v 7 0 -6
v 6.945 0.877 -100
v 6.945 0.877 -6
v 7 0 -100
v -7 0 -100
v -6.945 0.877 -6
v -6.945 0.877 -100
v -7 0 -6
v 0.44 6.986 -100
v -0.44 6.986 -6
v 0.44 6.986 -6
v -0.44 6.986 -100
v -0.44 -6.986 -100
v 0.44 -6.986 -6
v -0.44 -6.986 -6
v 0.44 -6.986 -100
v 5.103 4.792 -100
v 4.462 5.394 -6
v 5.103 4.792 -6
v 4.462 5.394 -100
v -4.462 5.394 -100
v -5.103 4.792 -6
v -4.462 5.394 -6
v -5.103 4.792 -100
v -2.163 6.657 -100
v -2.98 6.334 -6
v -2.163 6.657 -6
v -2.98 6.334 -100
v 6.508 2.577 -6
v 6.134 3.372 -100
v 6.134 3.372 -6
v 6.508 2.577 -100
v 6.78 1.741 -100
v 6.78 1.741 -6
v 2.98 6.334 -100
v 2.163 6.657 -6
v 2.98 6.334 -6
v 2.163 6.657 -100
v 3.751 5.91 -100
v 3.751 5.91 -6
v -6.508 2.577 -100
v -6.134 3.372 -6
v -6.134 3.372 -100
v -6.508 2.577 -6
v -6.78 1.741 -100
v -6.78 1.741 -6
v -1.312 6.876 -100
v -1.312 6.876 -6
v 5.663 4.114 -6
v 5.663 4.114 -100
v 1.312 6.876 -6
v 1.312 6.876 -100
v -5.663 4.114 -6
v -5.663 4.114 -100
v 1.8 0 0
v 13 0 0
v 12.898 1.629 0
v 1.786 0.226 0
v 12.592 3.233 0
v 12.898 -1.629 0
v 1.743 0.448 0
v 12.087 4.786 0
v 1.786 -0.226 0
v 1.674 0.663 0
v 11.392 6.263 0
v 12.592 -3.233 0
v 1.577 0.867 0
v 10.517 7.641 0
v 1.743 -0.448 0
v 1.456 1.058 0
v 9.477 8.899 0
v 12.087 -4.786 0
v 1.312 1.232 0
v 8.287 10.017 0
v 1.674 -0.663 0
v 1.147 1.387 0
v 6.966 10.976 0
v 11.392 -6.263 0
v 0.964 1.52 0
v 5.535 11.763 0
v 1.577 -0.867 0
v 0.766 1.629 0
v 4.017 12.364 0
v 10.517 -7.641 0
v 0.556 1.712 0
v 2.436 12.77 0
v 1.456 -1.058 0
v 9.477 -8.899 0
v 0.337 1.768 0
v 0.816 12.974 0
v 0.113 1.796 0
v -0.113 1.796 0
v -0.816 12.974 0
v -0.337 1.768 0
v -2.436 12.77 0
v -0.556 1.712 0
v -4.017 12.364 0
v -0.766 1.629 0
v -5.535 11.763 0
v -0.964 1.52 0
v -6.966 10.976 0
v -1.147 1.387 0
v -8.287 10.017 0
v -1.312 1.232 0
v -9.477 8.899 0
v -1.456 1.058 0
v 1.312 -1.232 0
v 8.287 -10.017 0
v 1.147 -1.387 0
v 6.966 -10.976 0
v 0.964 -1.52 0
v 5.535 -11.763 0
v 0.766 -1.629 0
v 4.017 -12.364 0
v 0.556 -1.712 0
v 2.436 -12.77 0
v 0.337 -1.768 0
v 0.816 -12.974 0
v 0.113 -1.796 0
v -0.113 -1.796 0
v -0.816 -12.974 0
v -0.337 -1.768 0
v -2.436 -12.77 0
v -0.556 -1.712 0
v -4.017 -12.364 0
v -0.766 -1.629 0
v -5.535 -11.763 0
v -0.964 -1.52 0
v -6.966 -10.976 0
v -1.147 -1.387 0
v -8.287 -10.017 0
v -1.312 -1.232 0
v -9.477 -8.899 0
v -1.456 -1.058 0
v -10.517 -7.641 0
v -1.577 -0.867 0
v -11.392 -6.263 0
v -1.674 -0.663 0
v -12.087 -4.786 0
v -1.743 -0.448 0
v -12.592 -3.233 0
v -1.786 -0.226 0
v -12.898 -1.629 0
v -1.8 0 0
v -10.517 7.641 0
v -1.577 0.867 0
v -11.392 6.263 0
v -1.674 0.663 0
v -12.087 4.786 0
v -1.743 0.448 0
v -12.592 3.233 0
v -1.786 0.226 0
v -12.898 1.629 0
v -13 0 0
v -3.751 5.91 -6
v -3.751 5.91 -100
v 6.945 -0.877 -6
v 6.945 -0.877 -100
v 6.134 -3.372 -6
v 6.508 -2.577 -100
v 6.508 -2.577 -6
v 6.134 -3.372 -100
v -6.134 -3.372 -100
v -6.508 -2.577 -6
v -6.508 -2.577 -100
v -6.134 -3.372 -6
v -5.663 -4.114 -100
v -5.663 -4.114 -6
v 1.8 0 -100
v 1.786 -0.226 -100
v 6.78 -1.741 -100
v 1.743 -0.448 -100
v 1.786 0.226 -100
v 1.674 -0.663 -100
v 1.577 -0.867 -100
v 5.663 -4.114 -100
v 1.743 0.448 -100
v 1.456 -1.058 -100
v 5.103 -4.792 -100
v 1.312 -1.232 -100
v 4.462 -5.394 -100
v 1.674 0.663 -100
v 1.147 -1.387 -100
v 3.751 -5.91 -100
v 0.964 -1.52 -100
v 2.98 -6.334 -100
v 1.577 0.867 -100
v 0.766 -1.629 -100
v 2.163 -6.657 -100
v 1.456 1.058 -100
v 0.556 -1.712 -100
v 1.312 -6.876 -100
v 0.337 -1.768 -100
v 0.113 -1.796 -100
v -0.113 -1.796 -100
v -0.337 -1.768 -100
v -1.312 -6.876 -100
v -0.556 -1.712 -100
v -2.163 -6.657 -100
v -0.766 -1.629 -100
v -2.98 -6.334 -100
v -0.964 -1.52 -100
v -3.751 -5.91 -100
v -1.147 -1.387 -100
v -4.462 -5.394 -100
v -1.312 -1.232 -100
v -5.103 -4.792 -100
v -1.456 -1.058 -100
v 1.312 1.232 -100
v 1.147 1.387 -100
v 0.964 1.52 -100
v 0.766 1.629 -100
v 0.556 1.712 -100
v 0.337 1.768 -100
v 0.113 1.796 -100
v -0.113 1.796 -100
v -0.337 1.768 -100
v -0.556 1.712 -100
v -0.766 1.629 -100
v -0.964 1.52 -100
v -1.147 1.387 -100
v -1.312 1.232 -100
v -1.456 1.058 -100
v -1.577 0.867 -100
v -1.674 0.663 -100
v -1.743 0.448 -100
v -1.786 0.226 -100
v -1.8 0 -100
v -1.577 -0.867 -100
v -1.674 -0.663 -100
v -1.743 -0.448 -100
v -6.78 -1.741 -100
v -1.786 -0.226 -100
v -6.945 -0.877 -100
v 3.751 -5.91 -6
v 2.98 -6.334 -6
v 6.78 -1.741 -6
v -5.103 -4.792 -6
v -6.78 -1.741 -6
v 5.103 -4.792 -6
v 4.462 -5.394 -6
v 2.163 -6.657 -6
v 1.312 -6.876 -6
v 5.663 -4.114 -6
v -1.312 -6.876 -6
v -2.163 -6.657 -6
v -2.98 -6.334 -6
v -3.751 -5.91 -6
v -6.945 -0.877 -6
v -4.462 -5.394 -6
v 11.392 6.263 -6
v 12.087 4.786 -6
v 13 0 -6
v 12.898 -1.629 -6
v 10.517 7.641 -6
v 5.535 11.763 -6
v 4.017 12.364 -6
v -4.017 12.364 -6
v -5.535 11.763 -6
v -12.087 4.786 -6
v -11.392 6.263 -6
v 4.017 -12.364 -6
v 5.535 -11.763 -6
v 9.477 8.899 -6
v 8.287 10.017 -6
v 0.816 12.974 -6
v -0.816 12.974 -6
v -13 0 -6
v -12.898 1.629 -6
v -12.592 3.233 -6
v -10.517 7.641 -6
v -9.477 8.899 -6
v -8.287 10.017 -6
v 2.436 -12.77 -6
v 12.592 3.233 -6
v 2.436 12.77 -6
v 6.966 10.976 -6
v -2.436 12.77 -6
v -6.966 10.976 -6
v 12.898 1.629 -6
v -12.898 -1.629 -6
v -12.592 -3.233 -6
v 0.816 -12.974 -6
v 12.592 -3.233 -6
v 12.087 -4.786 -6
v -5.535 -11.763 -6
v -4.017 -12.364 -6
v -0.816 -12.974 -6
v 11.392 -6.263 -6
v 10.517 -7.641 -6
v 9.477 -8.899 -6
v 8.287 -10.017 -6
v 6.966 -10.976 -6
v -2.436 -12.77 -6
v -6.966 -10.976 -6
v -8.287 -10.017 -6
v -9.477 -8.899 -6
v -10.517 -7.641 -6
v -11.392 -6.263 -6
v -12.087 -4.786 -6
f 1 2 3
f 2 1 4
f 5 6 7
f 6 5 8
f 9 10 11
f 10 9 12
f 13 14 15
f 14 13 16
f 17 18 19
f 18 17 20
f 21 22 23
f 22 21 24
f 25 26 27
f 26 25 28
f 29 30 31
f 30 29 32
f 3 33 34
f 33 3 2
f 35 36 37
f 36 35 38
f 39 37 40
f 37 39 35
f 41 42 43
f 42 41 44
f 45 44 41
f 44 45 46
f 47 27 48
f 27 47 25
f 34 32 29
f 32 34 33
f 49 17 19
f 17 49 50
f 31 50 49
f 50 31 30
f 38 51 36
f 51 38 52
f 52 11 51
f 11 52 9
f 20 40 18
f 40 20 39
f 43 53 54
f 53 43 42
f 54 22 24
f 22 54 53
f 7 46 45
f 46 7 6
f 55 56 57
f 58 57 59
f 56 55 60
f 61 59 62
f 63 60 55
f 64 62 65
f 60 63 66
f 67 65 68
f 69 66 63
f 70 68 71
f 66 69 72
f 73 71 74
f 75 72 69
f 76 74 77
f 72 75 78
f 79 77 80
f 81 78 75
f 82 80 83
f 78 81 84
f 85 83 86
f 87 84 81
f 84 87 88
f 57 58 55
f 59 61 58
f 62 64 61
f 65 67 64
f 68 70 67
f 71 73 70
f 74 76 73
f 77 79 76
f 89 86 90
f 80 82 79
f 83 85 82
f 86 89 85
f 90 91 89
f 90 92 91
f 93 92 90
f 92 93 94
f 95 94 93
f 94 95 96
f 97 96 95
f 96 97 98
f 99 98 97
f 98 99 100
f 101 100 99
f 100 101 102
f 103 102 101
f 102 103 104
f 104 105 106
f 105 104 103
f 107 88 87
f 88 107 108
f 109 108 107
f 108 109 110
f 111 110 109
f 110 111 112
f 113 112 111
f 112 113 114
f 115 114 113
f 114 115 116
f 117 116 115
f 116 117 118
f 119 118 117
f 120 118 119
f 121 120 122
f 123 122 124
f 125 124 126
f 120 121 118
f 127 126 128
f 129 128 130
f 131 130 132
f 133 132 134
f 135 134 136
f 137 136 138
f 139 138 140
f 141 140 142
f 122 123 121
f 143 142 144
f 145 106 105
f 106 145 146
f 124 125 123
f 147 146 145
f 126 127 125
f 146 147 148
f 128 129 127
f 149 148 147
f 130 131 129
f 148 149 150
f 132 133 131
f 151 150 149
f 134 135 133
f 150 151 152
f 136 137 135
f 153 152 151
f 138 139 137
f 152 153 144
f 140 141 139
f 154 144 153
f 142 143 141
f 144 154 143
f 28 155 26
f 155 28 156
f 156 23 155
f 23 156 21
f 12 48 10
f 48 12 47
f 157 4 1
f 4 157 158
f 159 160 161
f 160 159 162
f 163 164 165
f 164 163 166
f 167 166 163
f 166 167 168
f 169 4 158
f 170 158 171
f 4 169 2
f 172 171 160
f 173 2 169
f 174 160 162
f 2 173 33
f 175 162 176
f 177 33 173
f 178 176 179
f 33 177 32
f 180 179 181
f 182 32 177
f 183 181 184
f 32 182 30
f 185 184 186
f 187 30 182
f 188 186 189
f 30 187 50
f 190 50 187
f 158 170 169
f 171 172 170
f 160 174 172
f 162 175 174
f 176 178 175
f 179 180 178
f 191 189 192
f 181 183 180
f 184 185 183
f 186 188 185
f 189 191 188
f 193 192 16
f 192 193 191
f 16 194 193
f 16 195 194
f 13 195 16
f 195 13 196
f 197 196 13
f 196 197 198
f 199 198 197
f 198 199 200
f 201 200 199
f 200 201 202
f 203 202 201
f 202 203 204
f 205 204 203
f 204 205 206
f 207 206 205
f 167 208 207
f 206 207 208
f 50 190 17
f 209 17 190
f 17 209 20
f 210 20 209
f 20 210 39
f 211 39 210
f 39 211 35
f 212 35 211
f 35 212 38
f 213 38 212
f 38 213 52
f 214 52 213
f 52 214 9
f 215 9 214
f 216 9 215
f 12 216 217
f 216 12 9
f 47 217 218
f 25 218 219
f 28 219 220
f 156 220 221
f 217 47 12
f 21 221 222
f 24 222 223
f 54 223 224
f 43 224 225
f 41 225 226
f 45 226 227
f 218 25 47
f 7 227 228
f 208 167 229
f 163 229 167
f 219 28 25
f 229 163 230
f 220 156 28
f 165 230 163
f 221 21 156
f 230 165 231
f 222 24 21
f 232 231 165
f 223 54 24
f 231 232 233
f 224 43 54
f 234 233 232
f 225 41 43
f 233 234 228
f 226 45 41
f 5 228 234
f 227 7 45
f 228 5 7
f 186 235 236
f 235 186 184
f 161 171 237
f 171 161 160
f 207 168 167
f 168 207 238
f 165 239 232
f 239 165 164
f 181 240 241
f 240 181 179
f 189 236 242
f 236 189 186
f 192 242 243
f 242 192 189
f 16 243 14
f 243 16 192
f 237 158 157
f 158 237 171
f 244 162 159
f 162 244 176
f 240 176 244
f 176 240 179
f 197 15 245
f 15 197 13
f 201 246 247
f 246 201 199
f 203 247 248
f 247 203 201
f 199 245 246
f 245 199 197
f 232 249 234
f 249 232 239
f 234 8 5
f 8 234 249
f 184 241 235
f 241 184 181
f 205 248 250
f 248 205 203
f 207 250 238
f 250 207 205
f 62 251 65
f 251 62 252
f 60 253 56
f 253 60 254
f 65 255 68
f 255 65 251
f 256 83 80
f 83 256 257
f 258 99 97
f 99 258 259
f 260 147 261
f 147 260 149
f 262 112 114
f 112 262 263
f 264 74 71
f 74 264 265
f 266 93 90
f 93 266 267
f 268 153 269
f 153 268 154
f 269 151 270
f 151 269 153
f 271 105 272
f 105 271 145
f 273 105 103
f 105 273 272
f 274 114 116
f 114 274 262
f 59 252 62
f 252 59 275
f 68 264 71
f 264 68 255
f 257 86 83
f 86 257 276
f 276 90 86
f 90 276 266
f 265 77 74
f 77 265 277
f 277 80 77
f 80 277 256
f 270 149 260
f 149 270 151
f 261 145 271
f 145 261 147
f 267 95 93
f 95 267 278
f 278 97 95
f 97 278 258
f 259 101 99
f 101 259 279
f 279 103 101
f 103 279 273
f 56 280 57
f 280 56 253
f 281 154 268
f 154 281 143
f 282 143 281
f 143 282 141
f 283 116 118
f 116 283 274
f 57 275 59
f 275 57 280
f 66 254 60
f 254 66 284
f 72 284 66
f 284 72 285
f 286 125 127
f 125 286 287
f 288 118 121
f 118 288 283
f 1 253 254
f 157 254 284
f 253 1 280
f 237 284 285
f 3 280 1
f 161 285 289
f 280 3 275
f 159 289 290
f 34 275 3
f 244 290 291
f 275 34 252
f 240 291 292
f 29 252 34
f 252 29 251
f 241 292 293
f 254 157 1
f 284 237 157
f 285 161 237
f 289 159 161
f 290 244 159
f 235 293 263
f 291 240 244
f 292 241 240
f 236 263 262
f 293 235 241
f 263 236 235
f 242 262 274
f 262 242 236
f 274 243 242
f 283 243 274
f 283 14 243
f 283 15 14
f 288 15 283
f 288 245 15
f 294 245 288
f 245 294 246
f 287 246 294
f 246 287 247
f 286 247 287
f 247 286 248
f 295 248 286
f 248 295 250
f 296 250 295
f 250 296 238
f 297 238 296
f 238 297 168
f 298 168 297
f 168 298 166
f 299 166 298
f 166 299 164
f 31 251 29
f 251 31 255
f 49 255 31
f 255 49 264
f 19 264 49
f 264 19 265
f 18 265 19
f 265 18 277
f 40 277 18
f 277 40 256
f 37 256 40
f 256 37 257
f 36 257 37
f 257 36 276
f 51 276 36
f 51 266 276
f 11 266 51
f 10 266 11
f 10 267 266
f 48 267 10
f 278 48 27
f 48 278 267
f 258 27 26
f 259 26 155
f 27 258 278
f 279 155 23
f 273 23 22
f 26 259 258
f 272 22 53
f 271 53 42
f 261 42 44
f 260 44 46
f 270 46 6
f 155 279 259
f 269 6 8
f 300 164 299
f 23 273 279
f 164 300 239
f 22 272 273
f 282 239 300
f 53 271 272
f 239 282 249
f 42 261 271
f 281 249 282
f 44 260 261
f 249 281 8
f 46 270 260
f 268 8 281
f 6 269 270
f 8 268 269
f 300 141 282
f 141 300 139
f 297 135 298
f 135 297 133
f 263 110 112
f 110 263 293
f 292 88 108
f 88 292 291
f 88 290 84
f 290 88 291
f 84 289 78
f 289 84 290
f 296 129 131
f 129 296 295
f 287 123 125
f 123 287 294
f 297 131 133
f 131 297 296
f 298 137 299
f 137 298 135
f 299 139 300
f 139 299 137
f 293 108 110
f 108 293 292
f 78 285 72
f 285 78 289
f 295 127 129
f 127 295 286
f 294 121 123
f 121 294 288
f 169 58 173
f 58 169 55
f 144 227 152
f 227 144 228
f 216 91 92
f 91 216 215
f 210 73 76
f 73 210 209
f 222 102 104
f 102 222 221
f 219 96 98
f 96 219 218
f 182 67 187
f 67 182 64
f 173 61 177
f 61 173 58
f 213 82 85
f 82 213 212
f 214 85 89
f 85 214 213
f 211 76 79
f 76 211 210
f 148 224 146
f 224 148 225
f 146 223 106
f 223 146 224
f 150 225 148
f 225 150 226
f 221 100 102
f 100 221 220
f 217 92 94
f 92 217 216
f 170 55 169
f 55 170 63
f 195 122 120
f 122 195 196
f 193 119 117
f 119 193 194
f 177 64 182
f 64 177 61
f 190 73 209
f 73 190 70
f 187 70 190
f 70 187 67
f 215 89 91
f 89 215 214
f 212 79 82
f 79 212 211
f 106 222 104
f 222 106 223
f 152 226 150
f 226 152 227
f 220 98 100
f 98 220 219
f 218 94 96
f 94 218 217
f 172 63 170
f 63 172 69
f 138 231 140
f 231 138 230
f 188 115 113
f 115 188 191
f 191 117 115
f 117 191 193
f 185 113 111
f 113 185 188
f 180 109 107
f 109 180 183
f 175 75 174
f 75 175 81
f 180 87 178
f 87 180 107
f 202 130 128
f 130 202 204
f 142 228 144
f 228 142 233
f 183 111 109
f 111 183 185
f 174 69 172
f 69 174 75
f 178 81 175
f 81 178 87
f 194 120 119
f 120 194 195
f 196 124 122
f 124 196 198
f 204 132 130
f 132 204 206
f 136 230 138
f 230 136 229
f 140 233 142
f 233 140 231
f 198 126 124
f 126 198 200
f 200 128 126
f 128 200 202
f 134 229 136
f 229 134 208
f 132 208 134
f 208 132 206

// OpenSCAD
$fn = 50;


difference() {
	union() {
		translate(v = [0, 0, -100.0000000000]) {
			cylinder(h = 100, r = 7.0000000000);
		}
		translate(v = [0, 0, -6.0000000000]) {
			cylinder(h = 6, r = 13.0000000000);
		}
	}
	union() {
		#translate(v = [0, 0, -100]) {
			cylinder(h = 100, r = 1.8000000000);
		}
	}
}
